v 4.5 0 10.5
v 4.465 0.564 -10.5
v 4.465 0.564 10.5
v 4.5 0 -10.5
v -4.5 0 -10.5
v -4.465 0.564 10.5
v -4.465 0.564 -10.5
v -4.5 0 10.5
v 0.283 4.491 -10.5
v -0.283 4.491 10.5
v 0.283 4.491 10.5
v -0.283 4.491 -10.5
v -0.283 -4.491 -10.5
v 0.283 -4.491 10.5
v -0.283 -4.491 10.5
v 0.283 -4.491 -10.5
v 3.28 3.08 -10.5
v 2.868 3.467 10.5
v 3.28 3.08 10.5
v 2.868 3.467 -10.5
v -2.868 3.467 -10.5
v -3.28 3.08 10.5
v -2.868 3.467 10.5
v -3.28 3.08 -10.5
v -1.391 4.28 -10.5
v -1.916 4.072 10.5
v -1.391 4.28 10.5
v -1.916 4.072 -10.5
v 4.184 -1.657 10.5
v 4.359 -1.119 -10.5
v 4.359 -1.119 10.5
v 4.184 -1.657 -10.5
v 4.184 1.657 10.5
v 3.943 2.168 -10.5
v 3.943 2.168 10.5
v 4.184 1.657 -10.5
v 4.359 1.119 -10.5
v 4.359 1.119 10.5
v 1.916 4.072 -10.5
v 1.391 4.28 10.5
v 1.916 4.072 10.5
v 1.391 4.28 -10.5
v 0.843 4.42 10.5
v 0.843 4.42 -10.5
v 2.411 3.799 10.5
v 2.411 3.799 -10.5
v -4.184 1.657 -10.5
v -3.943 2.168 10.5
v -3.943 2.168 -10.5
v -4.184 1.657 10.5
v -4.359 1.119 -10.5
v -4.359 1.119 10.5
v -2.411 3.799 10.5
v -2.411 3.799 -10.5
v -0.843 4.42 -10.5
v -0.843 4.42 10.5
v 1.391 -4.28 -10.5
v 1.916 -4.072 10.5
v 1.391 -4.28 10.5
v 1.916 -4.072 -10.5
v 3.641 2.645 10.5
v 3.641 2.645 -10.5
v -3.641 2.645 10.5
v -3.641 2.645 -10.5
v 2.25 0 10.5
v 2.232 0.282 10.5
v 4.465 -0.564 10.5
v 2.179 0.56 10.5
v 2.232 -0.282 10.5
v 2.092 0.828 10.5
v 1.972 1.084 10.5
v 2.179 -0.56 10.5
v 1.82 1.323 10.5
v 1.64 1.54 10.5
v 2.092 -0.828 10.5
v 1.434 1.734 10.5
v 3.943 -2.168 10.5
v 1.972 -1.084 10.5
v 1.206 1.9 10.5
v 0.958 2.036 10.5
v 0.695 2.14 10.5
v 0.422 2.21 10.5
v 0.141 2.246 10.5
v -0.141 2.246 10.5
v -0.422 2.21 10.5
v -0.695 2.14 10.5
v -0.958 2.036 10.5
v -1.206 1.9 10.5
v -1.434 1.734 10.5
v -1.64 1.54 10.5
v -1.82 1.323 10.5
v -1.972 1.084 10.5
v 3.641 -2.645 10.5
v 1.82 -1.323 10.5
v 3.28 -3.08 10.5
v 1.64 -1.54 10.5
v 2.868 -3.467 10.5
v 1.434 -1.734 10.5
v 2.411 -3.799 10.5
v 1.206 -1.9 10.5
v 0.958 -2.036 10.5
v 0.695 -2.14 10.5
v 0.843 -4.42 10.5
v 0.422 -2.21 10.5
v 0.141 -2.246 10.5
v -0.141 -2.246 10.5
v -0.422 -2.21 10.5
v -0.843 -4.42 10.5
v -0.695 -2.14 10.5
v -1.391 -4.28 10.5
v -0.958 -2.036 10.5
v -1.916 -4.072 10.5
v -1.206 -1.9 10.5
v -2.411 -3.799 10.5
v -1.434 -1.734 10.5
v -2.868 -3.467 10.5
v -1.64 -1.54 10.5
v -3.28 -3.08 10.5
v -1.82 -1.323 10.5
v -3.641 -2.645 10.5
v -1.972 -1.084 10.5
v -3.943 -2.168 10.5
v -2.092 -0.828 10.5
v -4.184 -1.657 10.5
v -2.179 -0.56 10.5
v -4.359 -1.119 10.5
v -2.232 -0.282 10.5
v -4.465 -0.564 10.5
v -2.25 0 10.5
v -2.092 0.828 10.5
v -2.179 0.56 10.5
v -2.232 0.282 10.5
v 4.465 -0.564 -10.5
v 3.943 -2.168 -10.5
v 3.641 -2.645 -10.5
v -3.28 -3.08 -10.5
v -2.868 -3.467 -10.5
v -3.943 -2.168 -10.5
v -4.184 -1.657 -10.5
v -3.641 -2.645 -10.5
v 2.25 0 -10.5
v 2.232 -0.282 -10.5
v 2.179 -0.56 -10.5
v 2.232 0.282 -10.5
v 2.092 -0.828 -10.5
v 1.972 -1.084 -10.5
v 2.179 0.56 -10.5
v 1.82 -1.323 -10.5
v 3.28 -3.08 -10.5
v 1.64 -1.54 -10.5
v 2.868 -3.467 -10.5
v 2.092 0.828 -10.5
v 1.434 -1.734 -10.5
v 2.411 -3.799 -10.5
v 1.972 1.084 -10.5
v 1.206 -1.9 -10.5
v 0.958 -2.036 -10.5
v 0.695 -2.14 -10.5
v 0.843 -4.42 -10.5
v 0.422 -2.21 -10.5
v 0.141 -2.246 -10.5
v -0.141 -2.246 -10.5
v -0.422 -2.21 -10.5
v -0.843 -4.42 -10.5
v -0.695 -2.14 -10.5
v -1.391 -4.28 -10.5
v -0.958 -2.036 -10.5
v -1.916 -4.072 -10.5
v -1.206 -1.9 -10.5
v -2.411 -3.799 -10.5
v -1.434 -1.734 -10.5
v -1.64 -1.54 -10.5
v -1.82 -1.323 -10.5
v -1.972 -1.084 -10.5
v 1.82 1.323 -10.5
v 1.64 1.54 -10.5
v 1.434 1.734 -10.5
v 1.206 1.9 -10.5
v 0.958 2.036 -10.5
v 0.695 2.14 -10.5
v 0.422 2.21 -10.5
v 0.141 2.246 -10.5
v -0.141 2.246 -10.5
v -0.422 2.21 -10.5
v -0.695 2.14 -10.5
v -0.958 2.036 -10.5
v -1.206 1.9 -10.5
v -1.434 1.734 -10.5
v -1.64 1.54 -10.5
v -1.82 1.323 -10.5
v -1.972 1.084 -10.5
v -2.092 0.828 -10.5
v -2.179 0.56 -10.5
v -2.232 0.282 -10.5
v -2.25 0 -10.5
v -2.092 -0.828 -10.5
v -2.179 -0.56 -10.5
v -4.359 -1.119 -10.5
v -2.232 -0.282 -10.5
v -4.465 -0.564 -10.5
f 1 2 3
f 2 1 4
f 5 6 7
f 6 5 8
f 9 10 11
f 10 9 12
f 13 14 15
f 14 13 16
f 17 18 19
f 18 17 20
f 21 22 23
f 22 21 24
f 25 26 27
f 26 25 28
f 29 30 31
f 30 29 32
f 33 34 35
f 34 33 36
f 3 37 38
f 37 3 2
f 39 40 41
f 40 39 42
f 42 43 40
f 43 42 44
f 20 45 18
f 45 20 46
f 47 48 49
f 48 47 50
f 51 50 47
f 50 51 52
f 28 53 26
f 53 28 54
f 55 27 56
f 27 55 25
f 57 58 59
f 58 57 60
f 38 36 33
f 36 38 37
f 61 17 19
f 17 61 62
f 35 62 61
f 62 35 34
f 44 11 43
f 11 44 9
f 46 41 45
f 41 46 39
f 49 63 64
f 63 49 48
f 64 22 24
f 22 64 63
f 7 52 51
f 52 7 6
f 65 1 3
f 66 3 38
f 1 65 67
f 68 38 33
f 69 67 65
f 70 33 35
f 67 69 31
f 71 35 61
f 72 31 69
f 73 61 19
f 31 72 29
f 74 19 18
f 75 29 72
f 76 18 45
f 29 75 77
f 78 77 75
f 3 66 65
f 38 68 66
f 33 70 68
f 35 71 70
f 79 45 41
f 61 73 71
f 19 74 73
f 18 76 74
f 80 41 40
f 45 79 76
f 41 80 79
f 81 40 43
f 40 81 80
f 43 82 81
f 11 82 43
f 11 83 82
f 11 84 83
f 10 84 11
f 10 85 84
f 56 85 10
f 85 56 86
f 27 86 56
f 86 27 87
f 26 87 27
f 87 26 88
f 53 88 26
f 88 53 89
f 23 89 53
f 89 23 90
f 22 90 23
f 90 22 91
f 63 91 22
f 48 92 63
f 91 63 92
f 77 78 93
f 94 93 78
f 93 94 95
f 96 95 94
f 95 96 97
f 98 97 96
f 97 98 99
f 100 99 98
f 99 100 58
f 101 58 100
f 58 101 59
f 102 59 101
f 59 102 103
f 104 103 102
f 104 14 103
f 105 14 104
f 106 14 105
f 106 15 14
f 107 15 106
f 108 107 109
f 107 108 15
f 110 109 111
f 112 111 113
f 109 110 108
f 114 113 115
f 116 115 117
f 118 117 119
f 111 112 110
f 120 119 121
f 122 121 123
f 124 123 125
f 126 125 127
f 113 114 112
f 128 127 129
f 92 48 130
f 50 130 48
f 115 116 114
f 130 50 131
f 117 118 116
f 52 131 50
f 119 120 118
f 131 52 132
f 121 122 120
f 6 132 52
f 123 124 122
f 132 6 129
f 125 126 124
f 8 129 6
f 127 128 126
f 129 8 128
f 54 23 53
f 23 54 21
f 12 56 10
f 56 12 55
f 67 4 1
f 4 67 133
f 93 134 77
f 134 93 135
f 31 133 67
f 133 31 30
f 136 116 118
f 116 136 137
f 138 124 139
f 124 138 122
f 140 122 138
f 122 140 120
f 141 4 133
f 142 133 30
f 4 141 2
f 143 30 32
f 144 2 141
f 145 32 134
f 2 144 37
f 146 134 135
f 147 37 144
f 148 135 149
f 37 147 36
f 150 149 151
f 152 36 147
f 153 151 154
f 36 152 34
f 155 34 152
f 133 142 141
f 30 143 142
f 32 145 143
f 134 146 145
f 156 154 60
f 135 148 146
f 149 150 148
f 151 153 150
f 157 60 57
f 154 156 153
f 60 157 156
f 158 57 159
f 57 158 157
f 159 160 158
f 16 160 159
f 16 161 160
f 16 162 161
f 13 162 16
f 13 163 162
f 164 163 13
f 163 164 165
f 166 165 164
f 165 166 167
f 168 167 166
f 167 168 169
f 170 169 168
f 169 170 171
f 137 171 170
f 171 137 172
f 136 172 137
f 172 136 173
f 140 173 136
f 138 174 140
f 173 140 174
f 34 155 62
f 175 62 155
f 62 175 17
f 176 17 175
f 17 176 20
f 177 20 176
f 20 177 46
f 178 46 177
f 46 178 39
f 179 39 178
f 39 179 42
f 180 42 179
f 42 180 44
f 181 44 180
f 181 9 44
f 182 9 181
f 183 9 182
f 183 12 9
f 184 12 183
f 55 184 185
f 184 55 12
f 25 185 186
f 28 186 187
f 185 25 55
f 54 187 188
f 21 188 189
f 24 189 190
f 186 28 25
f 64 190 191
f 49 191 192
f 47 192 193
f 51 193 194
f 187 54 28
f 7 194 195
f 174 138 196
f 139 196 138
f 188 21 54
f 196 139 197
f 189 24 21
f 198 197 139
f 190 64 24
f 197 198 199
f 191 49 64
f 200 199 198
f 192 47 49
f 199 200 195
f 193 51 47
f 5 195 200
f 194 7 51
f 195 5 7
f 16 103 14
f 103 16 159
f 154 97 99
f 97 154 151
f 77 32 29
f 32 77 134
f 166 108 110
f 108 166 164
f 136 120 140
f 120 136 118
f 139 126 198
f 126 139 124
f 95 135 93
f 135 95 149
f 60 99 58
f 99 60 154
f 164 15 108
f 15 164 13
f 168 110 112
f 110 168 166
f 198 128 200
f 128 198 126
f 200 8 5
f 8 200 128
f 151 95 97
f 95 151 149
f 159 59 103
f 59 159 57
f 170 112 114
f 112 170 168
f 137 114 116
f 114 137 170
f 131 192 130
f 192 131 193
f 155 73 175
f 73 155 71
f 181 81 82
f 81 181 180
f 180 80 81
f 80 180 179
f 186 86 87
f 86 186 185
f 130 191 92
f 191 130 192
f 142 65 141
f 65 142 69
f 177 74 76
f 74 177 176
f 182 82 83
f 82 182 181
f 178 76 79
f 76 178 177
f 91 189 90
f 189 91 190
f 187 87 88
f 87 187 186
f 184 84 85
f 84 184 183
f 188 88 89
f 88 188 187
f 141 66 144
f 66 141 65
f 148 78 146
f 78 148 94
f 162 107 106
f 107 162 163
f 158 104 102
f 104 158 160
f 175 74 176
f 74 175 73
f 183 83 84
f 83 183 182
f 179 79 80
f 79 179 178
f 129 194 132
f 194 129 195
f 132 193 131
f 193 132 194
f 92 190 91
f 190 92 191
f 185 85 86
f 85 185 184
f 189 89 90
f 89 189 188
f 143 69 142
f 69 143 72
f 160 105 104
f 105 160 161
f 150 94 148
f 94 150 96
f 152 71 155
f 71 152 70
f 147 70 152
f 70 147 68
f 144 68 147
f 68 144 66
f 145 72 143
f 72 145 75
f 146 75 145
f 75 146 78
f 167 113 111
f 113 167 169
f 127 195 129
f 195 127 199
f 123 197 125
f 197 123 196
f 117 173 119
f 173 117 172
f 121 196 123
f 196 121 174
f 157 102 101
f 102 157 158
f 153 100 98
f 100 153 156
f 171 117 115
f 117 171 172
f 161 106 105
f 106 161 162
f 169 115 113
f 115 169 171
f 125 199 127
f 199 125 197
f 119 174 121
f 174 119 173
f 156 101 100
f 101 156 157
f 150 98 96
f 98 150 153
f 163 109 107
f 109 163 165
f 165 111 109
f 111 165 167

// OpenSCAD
$fn = 50;


difference() {
	union() {
		translate(v = [0, 0, -10.5000000000]) {
			cylinder(h = 21, r = 4.5000000000);
		}
	}
	union() {
		translate(v = [0, 0, -100.0000000000]) {
			cylinder(h = 200, r = 2.2500000000);
		}
	}
}
